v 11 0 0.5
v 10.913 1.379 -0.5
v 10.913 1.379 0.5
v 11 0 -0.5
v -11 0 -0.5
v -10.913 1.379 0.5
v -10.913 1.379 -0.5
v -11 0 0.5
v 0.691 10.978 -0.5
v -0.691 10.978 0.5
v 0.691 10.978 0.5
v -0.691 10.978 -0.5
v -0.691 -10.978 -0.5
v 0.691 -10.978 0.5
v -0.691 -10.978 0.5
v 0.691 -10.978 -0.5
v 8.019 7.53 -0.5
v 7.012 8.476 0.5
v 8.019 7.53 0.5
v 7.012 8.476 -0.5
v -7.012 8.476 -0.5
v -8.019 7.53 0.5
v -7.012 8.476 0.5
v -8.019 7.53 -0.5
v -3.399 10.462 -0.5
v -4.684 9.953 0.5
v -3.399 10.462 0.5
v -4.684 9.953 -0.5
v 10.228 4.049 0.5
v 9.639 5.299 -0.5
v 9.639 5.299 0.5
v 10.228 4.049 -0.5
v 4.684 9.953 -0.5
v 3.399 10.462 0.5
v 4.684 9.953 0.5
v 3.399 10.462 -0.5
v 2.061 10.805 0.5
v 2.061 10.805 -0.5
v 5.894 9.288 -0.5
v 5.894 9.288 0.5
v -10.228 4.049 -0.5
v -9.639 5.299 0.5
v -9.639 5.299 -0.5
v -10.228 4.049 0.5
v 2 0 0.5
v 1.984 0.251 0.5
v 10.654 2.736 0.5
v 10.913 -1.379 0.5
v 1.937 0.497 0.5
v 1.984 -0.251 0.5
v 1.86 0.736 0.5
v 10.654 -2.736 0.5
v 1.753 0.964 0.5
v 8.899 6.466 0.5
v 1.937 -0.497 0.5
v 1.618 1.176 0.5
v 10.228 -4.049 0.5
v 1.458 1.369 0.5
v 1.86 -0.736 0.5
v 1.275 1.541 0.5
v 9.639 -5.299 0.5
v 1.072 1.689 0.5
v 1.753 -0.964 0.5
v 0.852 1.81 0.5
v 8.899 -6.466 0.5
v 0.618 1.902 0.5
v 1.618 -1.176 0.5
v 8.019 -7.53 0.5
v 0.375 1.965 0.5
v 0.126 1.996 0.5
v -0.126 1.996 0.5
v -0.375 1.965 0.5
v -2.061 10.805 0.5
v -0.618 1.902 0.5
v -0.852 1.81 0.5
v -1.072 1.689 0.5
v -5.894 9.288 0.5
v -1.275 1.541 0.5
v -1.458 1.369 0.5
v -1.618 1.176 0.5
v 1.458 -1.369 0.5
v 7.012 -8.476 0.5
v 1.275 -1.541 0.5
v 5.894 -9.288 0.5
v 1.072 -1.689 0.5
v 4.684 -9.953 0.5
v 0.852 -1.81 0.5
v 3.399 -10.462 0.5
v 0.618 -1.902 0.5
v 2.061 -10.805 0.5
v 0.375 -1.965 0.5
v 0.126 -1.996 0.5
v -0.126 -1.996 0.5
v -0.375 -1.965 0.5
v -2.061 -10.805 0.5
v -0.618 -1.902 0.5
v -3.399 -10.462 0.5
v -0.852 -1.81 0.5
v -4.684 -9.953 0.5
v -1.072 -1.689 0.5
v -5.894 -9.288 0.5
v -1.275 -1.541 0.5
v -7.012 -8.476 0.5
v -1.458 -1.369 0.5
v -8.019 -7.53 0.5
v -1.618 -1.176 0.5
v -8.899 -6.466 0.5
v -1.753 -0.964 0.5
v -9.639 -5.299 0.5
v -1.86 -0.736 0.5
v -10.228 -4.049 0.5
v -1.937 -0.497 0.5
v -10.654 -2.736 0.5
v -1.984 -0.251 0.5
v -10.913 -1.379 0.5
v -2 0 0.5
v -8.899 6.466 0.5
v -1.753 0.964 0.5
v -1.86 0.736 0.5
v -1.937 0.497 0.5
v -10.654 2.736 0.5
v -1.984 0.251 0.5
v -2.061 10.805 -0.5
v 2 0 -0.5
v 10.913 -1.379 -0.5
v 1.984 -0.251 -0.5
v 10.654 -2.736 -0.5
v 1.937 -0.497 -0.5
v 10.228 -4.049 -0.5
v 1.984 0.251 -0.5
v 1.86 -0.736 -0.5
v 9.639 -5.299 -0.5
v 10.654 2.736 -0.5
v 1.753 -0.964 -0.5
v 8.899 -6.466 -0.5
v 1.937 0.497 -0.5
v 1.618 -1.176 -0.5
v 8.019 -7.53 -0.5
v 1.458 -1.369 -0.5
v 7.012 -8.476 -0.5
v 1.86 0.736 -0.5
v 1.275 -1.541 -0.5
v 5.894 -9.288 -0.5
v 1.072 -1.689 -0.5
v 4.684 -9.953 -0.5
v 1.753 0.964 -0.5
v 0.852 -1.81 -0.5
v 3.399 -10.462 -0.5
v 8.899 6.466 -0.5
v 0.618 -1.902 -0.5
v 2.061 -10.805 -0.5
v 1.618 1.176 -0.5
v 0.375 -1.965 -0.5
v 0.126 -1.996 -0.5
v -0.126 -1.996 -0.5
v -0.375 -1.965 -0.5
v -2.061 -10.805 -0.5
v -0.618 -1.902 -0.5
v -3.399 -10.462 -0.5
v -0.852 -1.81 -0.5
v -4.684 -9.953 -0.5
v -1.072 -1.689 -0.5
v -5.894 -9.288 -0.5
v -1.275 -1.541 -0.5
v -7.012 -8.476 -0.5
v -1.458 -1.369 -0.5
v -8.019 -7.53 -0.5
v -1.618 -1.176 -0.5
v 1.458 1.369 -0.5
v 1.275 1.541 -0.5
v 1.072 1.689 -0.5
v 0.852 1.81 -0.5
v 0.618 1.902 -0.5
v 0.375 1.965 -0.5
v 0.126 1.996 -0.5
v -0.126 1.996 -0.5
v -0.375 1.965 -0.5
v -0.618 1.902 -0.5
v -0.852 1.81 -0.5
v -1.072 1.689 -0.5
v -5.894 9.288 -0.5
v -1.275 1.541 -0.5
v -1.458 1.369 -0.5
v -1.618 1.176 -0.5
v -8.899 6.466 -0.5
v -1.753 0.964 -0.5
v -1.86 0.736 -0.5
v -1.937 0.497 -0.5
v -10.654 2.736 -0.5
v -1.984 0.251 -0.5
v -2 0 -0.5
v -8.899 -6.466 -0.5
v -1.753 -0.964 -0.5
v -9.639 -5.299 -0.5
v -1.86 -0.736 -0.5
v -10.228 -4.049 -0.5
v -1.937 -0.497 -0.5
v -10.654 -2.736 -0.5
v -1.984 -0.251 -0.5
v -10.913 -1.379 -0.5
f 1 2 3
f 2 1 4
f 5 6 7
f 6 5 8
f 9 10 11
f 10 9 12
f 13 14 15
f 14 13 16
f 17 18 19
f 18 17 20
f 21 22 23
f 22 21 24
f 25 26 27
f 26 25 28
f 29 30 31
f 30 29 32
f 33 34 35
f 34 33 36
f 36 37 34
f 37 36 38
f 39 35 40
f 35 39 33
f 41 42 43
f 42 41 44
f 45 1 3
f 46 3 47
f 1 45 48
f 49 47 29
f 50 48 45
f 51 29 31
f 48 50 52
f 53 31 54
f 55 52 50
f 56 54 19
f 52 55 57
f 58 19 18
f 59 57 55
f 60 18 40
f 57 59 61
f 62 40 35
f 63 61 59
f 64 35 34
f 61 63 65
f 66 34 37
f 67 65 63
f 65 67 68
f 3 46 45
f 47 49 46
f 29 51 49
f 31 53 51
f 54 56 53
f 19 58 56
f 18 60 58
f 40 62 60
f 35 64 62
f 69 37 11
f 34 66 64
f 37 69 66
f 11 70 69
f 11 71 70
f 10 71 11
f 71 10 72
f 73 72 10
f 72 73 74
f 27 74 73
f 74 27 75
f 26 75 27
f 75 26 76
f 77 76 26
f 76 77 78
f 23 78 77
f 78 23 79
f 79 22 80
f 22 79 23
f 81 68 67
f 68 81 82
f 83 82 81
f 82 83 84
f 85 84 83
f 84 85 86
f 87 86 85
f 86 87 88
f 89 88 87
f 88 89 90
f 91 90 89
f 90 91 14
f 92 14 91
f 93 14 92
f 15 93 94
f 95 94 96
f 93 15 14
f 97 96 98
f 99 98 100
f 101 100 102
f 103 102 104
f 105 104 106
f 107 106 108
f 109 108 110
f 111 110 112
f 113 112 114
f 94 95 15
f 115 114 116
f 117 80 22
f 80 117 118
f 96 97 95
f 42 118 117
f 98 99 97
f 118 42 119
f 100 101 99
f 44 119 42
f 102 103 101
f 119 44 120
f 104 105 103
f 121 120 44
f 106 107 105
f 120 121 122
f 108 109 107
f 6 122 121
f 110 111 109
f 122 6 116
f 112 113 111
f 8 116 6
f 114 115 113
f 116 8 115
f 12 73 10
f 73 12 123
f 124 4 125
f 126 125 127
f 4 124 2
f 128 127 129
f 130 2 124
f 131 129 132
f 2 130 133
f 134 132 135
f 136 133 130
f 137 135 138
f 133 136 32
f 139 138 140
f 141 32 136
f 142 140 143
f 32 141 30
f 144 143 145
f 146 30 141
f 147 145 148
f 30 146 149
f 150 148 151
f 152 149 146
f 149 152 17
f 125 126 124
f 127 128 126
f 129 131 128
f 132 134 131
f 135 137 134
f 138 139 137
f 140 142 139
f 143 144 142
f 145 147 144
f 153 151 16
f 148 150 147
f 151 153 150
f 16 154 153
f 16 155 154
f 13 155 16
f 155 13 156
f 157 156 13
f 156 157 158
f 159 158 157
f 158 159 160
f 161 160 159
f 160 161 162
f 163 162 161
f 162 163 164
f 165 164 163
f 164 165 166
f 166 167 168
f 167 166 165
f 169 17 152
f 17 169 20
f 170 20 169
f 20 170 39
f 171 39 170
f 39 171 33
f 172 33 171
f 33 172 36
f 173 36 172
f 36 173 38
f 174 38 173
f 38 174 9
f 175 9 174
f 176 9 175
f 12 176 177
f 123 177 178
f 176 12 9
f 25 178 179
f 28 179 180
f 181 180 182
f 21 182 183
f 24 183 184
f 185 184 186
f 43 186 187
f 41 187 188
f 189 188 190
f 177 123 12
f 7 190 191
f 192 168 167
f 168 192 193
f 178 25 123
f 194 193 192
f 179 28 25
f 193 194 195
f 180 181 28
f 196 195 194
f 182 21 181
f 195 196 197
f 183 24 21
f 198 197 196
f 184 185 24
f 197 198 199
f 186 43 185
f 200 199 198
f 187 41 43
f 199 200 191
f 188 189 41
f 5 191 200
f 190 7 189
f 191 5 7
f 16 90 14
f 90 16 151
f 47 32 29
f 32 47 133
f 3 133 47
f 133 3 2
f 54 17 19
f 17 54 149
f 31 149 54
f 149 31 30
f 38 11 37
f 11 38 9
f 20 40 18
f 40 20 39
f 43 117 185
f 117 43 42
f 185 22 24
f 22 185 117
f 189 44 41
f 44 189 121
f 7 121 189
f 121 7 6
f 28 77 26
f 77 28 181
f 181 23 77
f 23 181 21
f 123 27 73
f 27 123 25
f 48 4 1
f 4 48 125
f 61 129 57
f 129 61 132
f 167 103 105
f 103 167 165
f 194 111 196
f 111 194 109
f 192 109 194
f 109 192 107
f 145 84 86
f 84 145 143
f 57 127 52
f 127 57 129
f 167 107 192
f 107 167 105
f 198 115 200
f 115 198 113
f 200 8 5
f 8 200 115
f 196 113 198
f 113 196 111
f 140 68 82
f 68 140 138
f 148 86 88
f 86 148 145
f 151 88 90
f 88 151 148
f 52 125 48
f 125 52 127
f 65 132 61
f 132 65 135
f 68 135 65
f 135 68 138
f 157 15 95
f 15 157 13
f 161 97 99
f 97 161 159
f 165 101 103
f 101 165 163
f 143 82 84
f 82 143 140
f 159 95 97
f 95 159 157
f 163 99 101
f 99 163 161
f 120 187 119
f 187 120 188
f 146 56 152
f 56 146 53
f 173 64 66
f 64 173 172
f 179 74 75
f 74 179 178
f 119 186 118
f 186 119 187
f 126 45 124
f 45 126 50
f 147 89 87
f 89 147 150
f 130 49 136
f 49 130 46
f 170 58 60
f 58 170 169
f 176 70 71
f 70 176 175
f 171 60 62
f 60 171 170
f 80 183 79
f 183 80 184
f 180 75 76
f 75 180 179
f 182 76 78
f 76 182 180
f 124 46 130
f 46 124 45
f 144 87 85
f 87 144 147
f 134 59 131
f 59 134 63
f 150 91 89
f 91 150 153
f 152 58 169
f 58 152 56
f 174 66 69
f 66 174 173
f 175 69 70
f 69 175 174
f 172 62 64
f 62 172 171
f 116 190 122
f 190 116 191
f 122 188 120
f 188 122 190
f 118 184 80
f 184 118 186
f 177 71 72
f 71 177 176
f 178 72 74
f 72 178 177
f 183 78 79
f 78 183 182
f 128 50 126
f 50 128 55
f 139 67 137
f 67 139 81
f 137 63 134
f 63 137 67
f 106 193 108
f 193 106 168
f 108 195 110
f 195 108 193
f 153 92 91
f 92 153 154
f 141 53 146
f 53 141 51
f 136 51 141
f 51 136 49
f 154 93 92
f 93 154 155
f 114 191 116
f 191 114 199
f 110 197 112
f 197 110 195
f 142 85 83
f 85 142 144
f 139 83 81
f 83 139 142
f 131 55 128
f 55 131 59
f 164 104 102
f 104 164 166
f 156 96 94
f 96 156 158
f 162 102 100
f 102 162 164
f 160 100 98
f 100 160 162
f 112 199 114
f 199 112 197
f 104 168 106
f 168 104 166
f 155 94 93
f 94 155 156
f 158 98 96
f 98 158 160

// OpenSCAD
$fn = 50;


difference() {
	union() {
		translate(v = [0, 0, -0.5000000000]) {
			cylinder(h = 1, r = 11.0000000000);
		}
	}
	union() {
		translate(v = [0, 0, -100.0000000000]) {
			cylinder(h = 200, r = 2);
		}
	}
}
